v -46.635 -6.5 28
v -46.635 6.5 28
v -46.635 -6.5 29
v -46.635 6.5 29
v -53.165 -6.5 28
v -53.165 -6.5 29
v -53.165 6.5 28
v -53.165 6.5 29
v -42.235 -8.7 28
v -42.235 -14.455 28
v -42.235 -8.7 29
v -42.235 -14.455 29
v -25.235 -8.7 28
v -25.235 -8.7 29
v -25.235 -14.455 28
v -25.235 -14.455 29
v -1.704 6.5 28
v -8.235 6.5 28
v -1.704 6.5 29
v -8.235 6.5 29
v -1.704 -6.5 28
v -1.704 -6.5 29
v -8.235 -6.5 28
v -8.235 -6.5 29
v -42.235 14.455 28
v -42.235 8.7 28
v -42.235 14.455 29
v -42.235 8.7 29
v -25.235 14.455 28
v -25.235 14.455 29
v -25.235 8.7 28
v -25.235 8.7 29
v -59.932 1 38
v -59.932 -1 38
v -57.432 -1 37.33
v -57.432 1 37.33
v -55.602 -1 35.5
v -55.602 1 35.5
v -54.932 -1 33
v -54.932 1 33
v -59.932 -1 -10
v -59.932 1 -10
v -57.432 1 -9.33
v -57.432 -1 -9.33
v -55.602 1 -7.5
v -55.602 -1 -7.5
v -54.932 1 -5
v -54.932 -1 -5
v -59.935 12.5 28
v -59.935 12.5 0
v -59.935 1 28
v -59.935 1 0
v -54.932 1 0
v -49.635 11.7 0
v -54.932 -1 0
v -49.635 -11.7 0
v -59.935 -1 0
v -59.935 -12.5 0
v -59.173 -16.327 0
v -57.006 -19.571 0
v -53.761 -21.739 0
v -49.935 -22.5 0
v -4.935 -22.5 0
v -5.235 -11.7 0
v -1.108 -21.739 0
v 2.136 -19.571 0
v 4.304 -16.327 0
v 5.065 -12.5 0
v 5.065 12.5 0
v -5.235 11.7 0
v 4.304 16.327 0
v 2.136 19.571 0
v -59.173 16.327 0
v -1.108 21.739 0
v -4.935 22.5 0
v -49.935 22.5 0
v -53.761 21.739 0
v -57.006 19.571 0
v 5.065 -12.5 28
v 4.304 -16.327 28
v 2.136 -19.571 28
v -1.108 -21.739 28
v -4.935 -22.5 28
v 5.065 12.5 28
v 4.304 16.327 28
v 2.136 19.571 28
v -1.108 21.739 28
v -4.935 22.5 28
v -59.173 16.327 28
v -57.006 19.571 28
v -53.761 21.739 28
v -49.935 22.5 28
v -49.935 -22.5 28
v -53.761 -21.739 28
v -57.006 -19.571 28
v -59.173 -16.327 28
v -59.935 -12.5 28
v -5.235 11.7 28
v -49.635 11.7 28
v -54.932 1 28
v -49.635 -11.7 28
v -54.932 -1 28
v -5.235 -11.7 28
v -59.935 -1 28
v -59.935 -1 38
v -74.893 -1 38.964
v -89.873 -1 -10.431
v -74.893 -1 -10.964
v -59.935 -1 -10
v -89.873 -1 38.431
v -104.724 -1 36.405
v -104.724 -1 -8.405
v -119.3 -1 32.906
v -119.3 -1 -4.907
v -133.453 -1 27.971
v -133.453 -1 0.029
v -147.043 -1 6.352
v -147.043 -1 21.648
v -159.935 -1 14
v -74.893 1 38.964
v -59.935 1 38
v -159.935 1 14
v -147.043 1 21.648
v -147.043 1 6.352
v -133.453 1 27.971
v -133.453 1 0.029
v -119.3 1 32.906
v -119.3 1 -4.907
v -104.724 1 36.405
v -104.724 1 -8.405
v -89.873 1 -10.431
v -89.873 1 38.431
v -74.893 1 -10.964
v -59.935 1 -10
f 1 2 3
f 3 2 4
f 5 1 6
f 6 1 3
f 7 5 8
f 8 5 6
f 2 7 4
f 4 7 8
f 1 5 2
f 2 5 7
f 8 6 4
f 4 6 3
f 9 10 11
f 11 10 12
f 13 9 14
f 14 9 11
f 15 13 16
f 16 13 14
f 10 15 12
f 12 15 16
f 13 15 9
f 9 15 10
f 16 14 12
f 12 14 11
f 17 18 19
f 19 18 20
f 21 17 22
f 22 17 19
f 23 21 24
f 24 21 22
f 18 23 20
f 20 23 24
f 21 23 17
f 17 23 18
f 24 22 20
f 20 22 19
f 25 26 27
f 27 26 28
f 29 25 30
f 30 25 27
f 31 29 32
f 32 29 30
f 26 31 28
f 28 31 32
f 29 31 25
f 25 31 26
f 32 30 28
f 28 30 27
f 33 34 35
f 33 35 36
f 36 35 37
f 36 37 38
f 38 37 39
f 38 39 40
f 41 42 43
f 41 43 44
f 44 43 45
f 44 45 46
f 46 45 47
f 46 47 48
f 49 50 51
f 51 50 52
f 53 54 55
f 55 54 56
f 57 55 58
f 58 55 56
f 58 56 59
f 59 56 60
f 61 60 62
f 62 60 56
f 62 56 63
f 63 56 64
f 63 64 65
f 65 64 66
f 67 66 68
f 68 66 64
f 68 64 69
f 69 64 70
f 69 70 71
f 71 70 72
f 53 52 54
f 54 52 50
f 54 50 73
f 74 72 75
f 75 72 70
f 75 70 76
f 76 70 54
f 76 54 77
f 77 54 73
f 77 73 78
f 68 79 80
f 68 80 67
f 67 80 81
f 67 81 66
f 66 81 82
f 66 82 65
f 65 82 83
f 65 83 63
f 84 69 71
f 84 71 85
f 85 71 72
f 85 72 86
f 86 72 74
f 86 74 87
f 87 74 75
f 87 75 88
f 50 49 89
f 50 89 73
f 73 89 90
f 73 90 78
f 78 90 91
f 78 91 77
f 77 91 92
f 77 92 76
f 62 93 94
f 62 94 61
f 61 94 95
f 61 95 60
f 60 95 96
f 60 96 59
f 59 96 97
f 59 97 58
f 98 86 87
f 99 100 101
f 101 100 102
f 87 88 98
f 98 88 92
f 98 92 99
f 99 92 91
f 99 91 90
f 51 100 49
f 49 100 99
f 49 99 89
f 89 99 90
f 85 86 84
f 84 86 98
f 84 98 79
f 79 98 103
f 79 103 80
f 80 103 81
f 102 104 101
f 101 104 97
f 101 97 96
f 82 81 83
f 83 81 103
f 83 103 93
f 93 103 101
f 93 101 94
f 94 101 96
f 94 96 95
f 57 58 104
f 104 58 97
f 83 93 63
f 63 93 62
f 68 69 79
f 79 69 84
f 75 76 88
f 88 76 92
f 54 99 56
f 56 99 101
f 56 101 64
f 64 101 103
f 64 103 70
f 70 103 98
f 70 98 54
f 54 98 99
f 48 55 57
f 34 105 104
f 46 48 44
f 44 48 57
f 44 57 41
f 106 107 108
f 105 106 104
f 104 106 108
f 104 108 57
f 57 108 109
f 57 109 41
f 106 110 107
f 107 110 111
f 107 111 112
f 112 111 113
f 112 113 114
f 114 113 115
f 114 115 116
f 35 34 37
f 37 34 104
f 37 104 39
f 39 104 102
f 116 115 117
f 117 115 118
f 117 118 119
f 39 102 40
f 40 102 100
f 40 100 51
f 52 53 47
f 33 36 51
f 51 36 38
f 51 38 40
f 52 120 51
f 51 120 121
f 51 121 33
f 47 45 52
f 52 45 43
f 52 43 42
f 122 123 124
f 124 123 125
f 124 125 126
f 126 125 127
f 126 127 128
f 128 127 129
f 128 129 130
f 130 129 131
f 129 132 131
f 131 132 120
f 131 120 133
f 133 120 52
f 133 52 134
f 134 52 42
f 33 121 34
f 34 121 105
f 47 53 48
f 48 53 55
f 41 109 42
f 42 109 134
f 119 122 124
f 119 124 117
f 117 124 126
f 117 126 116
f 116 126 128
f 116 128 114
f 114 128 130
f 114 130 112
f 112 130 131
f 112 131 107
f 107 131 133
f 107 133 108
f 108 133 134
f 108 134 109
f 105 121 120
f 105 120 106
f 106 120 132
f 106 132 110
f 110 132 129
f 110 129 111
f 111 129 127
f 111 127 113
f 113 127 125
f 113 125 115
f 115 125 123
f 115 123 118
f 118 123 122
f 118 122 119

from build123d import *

# Parameters (mm, degrees)
SKETCH_1_W           = 65
SKETCH_1_H           = 45
EXTRUDE_1_DEPTH      = 28
SKETCH_2_W           = 44.4
SKETCH_2_H           = 23.4
CUT_EXTRUDE_1_DEPTH  = 39
FILLET_1_R           = 10
FILLET_2_R           = 10
FILLET_3_R           = 10
FILLET_4_R           = 10
EXTRUDE_6_DEPTH      = 1
EXTRUDE_6_2_DEPTH    = 1
EXTRUDE_6_3_DEPTH    = 1
SKETCH_10_W          = 17
SKETCH_10_H          = 5.754584259
EXTRUDE_6_4_DEPTH    = 1
SKETCH_20_W          = 5.002637397
SKETCH_20_H          = 2
EXTRUDE_7_DEPTH      = 10
SKETCH_21_W          = 5.00232547
SKETCH_21_H          = 2
EXTRUDE_8_DEPTH      = 10
EXTRUDE_9_DEPTH      = 1
EXTRUDE_9_DEPTH_BACK = 1
FILLET_5_R           = 5
FILLET_6_R           = 5


with BuildPart() as part:
    # 草圖1 → 填料-伸長1 (new body)
    with BuildSketch(Plane.XY):
        with Locations((-27.434655272, 0)):
            Rectangle(SKETCH_1_W, SKETCH_1_H)
    extrude(amount=EXTRUDE_1_DEPTH)

    # 草圖2 → 除料-伸長1 (cut)
    with BuildSketch(Plane.XY):
        with Locations((-27.434655272, 0)):
            Rectangle(SKETCH_2_W, SKETCH_2_H)
    extrude(amount=CUT_EXTRUDE_1_DEPTH, mode=Mode.SUBTRACT)

    # 圓角1
    fillet_1_edges = [part.edges().sort_by_distance(p)[0] for p in [
        (-59.934655272, -22.5, 14),
    ]]
    fillet(fillet_1_edges, radius=FILLET_1_R)

    # 圓角2
    fillet_2_edges = [part.edges().sort_by_distance(p)[0] for p in [
        (-59.934655272, 22.5, 14),
    ]]
    fillet(fillet_2_edges, radius=FILLET_2_R)

    # 圓角3
    fillet_3_edges = [part.edges().sort_by_distance(p)[0] for p in [
        (5.065344728, 22.5, 14),
    ]]
    fillet(fillet_3_edges, radius=FILLET_3_R)

    # 圓角4
    fillet_4_edges = [part.edges().sort_by_distance(p)[0] for p in [
        (5.065344728, -22.5, 14),
    ]]
    fillet(fillet_4_edges, radius=FILLET_4_R)

    # 草圖20 → 填料-伸長7 (add)
    with BuildSketch(Plane.XY.offset(28)):
        with Locations((-57.433336574, 0)):
            Rectangle(SKETCH_20_W, SKETCH_20_H)
    extrude(amount=EXTRUDE_7_DEPTH)

    # 草圖21 → 填料-伸長8 (add)
    with BuildSketch(Plane(origin=(0, 0, 0), x_dir=(-1, 0, 0), z_dir=(0, 0, -1))):
        with Locations((57.433492537, 0)):
            Rectangle(SKETCH_21_W, SKETCH_21_H)
    extrude(amount=EXTRUDE_8_DEPTH)

    # 草圖22 → 填料-伸長9 (add, two sides)
    with BuildSketch(Plane(origin=(0, 0, 0), x_dir=(1, 0, 0), z_dir=(0, 1, 0))) as extrude_9_sk:
        with BuildLine():
            Line((-59.934655272, 10), (-59.934655272, -38))
            ThreePointArc((-59.934655272, -38), (-112.055707444, -34.837717383), (-159.934655272, -14))
            ThreePointArc((-159.934655272, -14), (-112.055707444, 6.837717383), (-59.934655272, 10))
        make_face()
    extrude(amount=EXTRUDE_9_DEPTH)
    extrude(extrude_9_sk.sketch, amount=-EXTRUDE_9_DEPTH_BACK)

    # 圓角5
    fillet_5_edges = [part.edges().sort_by_distance(p)[0] for p in [
        (-54.932329802, 0, -10),
    ]]
    fillet(fillet_5_edges, radius=FILLET_5_R)

    # 圓角6
    fillet_6_edges = [part.edges().sort_by_distance(p)[0] for p in [
        (-54.932017875, 0, 38),
    ]]
    fillet(fillet_6_edges, radius=FILLET_6_R)


with BuildPart() as body_2:
    # 草圖10 → 填料-伸長6 (new body)
    with BuildSketch(Plane.XY.offset(29)):
        Polygon((-49.634655272, 6.5), (-53.165057103, 6.5), (-53.165057103, -6.5), (-46.634655272, -6.5), (-46.634655272, 6.5), align=None)
    extrude(amount=-EXTRUDE_6_DEPTH)


with BuildPart() as body_3:
    # 草圖10 → Extrude 6 2 (new body)
    with BuildSketch(Plane.XY.offset(29)):
        Polygon((-42.234655272, -11.7), (-42.234655272, -8.7), (-25.234655272, -8.7), (-25.234655272, -14.454584259), (-42.234655272, -14.454584259), align=None)
    extrude(amount=-EXTRUDE_6_2_DEPTH)


with BuildPart() as body_4:
    # 草圖10 → Extrude 6 3 (new body)
    with BuildSketch(Plane.XY.offset(29)):
        Polygon((-8.234655272, 6.5), (-8.234655272, -6.5), (-5.234655272, -6.5), (-1.70425344, -6.5), (-1.70425344, 6.5), align=None)
    extrude(amount=-EXTRUDE_6_3_DEPTH)


with BuildPart() as body_5:
    # 草圖10 → Extrude 6 4 (new body)
    with BuildSketch(Plane.XY.offset(29)):
        with Locations((-33.734655272, 11.57729213)):
            Rectangle(SKETCH_10_W, SKETCH_10_H)
    extrude(amount=-EXTRUDE_6_4_DEPTH)


solid = Compound([part.part, body_2.part, body_3.part, body_4.part, body_5.part])
